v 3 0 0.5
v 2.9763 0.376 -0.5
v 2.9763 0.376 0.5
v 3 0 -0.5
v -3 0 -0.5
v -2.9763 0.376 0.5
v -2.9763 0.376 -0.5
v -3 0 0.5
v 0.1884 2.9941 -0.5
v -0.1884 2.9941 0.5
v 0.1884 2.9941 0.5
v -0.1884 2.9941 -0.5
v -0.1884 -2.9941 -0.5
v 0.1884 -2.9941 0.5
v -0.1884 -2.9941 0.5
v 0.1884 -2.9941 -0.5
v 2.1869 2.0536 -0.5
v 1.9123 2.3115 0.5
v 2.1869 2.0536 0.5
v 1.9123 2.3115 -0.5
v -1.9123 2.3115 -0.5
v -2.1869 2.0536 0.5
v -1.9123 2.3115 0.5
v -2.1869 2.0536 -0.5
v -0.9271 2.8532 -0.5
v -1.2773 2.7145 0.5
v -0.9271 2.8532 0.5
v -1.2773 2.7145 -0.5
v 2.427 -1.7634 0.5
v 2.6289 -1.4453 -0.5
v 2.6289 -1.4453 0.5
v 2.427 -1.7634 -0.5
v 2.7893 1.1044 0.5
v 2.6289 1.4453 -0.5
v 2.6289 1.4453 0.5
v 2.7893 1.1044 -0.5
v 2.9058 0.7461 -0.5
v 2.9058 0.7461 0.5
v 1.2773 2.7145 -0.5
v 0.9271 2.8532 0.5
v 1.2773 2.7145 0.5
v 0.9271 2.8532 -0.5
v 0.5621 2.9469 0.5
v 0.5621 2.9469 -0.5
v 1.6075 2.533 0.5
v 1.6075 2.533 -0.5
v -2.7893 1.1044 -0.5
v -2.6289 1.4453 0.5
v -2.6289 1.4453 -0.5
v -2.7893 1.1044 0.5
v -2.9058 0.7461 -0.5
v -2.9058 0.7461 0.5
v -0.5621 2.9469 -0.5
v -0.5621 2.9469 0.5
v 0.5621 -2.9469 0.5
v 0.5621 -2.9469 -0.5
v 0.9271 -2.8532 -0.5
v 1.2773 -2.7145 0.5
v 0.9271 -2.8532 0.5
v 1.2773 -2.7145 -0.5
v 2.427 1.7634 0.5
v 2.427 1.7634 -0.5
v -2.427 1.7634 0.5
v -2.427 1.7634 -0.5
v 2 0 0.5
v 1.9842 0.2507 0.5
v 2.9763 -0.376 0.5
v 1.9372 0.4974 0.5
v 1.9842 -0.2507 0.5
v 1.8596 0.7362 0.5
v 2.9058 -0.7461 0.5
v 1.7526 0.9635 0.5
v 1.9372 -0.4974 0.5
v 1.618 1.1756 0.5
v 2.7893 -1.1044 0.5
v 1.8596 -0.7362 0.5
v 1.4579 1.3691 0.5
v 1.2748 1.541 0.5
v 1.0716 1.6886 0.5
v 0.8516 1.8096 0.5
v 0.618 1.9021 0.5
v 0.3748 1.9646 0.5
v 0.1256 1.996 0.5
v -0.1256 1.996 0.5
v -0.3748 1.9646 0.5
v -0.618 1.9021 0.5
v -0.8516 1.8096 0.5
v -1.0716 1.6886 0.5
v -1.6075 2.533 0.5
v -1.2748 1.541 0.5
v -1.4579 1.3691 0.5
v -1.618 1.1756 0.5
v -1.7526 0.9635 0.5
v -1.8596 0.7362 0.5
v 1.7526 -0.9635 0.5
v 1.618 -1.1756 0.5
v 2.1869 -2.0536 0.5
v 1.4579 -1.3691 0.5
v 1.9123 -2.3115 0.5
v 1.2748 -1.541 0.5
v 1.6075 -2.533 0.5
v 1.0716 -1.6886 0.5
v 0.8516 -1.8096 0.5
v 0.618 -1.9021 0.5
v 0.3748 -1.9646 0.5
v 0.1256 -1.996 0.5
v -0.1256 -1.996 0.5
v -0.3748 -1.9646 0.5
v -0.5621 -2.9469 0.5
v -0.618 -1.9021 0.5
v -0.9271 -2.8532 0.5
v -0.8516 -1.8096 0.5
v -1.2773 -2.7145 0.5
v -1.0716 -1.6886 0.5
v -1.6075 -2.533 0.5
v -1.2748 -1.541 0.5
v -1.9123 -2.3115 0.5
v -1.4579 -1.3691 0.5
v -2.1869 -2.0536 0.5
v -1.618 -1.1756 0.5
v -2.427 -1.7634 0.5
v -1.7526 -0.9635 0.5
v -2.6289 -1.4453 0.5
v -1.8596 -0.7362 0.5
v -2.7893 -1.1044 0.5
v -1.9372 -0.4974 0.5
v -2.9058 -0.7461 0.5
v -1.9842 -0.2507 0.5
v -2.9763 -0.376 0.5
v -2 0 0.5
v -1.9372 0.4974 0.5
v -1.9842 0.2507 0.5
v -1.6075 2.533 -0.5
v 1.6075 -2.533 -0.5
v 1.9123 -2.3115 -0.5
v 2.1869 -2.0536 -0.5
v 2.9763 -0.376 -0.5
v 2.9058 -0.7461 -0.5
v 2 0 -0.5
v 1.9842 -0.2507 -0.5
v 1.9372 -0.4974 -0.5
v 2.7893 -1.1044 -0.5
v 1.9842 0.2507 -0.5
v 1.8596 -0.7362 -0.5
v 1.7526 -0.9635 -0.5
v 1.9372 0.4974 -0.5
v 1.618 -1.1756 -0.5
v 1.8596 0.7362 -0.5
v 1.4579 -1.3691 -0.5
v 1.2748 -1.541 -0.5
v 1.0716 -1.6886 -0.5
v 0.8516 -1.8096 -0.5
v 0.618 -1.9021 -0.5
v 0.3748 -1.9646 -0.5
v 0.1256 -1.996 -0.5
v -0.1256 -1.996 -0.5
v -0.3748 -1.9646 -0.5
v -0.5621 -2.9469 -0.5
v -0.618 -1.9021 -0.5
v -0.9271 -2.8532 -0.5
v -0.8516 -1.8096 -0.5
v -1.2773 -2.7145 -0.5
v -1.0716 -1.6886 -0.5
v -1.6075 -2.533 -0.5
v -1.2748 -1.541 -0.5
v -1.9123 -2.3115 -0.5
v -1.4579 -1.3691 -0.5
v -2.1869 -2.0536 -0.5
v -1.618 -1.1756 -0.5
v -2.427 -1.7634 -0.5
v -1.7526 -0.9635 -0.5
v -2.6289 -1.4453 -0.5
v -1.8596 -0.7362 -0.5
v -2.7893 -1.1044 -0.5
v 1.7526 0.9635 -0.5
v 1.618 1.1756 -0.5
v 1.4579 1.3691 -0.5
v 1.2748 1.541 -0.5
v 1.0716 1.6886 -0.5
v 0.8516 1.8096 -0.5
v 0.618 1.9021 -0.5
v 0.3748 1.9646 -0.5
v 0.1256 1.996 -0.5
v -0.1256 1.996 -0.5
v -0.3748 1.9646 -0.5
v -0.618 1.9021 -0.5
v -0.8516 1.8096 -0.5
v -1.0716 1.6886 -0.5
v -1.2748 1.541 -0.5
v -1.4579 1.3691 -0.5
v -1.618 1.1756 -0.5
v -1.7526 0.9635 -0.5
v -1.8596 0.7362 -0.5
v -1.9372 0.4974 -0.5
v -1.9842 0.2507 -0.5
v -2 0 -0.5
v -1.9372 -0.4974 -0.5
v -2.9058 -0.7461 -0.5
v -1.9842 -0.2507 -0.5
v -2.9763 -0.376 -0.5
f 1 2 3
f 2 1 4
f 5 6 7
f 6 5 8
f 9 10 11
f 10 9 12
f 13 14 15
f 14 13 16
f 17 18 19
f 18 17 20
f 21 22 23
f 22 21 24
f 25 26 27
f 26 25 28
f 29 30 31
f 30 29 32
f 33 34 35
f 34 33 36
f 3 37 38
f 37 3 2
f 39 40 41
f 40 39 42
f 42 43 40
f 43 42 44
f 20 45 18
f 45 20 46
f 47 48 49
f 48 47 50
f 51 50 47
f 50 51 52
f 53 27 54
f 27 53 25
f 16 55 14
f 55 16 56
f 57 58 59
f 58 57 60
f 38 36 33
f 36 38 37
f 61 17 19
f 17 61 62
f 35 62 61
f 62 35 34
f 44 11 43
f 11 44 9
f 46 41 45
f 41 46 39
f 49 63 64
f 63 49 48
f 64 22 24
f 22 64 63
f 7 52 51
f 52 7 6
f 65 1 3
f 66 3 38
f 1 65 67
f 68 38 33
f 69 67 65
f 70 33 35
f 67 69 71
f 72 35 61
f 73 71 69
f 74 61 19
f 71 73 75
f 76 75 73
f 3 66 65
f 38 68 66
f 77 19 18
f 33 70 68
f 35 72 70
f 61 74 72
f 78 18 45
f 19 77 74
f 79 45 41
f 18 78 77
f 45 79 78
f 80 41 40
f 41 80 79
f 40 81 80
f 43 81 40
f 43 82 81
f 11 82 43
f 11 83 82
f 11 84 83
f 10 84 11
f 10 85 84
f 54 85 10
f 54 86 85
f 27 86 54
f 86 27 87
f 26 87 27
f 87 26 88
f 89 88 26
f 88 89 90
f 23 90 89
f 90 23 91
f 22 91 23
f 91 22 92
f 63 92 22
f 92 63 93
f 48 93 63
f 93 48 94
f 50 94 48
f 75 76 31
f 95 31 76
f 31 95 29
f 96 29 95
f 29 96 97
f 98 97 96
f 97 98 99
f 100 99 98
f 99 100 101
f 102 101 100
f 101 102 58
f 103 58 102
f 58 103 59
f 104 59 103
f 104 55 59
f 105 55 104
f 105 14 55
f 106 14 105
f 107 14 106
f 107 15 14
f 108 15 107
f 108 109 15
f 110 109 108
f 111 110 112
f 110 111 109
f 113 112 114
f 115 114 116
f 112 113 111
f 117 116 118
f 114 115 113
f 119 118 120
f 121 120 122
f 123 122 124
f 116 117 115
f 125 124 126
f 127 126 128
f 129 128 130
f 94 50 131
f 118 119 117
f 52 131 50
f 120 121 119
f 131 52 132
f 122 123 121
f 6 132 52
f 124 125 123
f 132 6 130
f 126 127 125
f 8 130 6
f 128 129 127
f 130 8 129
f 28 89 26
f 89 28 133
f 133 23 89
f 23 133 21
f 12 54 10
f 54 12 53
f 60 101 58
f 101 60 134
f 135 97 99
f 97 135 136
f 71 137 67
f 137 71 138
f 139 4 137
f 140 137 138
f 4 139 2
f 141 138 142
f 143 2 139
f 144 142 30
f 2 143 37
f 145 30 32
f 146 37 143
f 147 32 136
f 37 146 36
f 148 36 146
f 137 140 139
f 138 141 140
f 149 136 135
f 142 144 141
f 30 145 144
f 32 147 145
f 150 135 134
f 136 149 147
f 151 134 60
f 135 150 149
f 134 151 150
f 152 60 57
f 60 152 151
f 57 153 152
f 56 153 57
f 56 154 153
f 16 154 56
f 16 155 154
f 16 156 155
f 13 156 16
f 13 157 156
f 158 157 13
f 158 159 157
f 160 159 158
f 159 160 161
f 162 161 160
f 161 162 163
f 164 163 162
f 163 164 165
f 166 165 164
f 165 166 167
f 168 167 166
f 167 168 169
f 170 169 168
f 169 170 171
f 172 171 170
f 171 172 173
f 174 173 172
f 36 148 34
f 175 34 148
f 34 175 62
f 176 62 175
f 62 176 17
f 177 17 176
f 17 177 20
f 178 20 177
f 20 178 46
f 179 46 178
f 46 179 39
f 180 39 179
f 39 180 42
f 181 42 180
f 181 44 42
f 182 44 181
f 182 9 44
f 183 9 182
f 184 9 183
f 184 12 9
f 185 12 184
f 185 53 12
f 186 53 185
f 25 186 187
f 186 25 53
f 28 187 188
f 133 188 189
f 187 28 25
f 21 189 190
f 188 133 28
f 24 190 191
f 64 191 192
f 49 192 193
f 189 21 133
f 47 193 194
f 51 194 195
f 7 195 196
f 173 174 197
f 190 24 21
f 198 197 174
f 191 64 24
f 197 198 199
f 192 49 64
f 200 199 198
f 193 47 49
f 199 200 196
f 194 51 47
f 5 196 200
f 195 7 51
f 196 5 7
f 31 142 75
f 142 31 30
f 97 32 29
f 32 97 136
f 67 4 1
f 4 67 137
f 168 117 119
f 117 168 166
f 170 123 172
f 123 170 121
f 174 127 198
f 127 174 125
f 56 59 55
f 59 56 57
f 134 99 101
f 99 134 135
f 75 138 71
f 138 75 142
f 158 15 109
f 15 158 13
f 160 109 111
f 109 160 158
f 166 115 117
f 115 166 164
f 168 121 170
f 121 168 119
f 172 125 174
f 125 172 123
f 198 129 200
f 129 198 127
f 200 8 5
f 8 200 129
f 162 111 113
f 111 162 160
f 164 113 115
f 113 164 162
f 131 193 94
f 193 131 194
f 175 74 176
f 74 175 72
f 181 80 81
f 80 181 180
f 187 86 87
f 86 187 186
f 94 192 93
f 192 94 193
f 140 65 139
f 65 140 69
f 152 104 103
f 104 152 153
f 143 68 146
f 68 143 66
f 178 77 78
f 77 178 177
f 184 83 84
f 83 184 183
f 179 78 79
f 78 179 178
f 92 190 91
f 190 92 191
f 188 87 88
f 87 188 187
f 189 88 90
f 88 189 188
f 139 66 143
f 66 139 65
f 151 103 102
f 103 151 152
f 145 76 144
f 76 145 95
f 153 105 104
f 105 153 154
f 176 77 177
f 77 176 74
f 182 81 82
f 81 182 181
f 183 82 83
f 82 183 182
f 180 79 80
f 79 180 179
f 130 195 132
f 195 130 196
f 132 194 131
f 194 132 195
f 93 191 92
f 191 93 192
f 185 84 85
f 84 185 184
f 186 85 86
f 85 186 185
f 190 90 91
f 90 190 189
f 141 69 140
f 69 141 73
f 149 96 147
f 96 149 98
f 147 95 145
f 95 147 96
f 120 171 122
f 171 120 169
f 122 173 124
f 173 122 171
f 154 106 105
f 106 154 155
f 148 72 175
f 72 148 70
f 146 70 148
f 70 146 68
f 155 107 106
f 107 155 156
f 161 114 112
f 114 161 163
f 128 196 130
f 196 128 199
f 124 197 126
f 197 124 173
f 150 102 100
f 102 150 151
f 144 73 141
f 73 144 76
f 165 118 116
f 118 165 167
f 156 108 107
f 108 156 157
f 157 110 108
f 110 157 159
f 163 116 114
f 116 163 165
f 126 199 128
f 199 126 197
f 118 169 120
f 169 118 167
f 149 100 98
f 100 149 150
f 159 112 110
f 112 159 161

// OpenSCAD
$fn = 50;


difference() {
	union() {
		translate(v = [0, 0, -0.5000000000]) {
			cylinder(h = 1, r = 3.0000000000);
		}
	}
	union() {
		translate(v = [0, 0, -100.0000000000]) {
			cylinder(h = 200, r = 2);
		}
	}
}
